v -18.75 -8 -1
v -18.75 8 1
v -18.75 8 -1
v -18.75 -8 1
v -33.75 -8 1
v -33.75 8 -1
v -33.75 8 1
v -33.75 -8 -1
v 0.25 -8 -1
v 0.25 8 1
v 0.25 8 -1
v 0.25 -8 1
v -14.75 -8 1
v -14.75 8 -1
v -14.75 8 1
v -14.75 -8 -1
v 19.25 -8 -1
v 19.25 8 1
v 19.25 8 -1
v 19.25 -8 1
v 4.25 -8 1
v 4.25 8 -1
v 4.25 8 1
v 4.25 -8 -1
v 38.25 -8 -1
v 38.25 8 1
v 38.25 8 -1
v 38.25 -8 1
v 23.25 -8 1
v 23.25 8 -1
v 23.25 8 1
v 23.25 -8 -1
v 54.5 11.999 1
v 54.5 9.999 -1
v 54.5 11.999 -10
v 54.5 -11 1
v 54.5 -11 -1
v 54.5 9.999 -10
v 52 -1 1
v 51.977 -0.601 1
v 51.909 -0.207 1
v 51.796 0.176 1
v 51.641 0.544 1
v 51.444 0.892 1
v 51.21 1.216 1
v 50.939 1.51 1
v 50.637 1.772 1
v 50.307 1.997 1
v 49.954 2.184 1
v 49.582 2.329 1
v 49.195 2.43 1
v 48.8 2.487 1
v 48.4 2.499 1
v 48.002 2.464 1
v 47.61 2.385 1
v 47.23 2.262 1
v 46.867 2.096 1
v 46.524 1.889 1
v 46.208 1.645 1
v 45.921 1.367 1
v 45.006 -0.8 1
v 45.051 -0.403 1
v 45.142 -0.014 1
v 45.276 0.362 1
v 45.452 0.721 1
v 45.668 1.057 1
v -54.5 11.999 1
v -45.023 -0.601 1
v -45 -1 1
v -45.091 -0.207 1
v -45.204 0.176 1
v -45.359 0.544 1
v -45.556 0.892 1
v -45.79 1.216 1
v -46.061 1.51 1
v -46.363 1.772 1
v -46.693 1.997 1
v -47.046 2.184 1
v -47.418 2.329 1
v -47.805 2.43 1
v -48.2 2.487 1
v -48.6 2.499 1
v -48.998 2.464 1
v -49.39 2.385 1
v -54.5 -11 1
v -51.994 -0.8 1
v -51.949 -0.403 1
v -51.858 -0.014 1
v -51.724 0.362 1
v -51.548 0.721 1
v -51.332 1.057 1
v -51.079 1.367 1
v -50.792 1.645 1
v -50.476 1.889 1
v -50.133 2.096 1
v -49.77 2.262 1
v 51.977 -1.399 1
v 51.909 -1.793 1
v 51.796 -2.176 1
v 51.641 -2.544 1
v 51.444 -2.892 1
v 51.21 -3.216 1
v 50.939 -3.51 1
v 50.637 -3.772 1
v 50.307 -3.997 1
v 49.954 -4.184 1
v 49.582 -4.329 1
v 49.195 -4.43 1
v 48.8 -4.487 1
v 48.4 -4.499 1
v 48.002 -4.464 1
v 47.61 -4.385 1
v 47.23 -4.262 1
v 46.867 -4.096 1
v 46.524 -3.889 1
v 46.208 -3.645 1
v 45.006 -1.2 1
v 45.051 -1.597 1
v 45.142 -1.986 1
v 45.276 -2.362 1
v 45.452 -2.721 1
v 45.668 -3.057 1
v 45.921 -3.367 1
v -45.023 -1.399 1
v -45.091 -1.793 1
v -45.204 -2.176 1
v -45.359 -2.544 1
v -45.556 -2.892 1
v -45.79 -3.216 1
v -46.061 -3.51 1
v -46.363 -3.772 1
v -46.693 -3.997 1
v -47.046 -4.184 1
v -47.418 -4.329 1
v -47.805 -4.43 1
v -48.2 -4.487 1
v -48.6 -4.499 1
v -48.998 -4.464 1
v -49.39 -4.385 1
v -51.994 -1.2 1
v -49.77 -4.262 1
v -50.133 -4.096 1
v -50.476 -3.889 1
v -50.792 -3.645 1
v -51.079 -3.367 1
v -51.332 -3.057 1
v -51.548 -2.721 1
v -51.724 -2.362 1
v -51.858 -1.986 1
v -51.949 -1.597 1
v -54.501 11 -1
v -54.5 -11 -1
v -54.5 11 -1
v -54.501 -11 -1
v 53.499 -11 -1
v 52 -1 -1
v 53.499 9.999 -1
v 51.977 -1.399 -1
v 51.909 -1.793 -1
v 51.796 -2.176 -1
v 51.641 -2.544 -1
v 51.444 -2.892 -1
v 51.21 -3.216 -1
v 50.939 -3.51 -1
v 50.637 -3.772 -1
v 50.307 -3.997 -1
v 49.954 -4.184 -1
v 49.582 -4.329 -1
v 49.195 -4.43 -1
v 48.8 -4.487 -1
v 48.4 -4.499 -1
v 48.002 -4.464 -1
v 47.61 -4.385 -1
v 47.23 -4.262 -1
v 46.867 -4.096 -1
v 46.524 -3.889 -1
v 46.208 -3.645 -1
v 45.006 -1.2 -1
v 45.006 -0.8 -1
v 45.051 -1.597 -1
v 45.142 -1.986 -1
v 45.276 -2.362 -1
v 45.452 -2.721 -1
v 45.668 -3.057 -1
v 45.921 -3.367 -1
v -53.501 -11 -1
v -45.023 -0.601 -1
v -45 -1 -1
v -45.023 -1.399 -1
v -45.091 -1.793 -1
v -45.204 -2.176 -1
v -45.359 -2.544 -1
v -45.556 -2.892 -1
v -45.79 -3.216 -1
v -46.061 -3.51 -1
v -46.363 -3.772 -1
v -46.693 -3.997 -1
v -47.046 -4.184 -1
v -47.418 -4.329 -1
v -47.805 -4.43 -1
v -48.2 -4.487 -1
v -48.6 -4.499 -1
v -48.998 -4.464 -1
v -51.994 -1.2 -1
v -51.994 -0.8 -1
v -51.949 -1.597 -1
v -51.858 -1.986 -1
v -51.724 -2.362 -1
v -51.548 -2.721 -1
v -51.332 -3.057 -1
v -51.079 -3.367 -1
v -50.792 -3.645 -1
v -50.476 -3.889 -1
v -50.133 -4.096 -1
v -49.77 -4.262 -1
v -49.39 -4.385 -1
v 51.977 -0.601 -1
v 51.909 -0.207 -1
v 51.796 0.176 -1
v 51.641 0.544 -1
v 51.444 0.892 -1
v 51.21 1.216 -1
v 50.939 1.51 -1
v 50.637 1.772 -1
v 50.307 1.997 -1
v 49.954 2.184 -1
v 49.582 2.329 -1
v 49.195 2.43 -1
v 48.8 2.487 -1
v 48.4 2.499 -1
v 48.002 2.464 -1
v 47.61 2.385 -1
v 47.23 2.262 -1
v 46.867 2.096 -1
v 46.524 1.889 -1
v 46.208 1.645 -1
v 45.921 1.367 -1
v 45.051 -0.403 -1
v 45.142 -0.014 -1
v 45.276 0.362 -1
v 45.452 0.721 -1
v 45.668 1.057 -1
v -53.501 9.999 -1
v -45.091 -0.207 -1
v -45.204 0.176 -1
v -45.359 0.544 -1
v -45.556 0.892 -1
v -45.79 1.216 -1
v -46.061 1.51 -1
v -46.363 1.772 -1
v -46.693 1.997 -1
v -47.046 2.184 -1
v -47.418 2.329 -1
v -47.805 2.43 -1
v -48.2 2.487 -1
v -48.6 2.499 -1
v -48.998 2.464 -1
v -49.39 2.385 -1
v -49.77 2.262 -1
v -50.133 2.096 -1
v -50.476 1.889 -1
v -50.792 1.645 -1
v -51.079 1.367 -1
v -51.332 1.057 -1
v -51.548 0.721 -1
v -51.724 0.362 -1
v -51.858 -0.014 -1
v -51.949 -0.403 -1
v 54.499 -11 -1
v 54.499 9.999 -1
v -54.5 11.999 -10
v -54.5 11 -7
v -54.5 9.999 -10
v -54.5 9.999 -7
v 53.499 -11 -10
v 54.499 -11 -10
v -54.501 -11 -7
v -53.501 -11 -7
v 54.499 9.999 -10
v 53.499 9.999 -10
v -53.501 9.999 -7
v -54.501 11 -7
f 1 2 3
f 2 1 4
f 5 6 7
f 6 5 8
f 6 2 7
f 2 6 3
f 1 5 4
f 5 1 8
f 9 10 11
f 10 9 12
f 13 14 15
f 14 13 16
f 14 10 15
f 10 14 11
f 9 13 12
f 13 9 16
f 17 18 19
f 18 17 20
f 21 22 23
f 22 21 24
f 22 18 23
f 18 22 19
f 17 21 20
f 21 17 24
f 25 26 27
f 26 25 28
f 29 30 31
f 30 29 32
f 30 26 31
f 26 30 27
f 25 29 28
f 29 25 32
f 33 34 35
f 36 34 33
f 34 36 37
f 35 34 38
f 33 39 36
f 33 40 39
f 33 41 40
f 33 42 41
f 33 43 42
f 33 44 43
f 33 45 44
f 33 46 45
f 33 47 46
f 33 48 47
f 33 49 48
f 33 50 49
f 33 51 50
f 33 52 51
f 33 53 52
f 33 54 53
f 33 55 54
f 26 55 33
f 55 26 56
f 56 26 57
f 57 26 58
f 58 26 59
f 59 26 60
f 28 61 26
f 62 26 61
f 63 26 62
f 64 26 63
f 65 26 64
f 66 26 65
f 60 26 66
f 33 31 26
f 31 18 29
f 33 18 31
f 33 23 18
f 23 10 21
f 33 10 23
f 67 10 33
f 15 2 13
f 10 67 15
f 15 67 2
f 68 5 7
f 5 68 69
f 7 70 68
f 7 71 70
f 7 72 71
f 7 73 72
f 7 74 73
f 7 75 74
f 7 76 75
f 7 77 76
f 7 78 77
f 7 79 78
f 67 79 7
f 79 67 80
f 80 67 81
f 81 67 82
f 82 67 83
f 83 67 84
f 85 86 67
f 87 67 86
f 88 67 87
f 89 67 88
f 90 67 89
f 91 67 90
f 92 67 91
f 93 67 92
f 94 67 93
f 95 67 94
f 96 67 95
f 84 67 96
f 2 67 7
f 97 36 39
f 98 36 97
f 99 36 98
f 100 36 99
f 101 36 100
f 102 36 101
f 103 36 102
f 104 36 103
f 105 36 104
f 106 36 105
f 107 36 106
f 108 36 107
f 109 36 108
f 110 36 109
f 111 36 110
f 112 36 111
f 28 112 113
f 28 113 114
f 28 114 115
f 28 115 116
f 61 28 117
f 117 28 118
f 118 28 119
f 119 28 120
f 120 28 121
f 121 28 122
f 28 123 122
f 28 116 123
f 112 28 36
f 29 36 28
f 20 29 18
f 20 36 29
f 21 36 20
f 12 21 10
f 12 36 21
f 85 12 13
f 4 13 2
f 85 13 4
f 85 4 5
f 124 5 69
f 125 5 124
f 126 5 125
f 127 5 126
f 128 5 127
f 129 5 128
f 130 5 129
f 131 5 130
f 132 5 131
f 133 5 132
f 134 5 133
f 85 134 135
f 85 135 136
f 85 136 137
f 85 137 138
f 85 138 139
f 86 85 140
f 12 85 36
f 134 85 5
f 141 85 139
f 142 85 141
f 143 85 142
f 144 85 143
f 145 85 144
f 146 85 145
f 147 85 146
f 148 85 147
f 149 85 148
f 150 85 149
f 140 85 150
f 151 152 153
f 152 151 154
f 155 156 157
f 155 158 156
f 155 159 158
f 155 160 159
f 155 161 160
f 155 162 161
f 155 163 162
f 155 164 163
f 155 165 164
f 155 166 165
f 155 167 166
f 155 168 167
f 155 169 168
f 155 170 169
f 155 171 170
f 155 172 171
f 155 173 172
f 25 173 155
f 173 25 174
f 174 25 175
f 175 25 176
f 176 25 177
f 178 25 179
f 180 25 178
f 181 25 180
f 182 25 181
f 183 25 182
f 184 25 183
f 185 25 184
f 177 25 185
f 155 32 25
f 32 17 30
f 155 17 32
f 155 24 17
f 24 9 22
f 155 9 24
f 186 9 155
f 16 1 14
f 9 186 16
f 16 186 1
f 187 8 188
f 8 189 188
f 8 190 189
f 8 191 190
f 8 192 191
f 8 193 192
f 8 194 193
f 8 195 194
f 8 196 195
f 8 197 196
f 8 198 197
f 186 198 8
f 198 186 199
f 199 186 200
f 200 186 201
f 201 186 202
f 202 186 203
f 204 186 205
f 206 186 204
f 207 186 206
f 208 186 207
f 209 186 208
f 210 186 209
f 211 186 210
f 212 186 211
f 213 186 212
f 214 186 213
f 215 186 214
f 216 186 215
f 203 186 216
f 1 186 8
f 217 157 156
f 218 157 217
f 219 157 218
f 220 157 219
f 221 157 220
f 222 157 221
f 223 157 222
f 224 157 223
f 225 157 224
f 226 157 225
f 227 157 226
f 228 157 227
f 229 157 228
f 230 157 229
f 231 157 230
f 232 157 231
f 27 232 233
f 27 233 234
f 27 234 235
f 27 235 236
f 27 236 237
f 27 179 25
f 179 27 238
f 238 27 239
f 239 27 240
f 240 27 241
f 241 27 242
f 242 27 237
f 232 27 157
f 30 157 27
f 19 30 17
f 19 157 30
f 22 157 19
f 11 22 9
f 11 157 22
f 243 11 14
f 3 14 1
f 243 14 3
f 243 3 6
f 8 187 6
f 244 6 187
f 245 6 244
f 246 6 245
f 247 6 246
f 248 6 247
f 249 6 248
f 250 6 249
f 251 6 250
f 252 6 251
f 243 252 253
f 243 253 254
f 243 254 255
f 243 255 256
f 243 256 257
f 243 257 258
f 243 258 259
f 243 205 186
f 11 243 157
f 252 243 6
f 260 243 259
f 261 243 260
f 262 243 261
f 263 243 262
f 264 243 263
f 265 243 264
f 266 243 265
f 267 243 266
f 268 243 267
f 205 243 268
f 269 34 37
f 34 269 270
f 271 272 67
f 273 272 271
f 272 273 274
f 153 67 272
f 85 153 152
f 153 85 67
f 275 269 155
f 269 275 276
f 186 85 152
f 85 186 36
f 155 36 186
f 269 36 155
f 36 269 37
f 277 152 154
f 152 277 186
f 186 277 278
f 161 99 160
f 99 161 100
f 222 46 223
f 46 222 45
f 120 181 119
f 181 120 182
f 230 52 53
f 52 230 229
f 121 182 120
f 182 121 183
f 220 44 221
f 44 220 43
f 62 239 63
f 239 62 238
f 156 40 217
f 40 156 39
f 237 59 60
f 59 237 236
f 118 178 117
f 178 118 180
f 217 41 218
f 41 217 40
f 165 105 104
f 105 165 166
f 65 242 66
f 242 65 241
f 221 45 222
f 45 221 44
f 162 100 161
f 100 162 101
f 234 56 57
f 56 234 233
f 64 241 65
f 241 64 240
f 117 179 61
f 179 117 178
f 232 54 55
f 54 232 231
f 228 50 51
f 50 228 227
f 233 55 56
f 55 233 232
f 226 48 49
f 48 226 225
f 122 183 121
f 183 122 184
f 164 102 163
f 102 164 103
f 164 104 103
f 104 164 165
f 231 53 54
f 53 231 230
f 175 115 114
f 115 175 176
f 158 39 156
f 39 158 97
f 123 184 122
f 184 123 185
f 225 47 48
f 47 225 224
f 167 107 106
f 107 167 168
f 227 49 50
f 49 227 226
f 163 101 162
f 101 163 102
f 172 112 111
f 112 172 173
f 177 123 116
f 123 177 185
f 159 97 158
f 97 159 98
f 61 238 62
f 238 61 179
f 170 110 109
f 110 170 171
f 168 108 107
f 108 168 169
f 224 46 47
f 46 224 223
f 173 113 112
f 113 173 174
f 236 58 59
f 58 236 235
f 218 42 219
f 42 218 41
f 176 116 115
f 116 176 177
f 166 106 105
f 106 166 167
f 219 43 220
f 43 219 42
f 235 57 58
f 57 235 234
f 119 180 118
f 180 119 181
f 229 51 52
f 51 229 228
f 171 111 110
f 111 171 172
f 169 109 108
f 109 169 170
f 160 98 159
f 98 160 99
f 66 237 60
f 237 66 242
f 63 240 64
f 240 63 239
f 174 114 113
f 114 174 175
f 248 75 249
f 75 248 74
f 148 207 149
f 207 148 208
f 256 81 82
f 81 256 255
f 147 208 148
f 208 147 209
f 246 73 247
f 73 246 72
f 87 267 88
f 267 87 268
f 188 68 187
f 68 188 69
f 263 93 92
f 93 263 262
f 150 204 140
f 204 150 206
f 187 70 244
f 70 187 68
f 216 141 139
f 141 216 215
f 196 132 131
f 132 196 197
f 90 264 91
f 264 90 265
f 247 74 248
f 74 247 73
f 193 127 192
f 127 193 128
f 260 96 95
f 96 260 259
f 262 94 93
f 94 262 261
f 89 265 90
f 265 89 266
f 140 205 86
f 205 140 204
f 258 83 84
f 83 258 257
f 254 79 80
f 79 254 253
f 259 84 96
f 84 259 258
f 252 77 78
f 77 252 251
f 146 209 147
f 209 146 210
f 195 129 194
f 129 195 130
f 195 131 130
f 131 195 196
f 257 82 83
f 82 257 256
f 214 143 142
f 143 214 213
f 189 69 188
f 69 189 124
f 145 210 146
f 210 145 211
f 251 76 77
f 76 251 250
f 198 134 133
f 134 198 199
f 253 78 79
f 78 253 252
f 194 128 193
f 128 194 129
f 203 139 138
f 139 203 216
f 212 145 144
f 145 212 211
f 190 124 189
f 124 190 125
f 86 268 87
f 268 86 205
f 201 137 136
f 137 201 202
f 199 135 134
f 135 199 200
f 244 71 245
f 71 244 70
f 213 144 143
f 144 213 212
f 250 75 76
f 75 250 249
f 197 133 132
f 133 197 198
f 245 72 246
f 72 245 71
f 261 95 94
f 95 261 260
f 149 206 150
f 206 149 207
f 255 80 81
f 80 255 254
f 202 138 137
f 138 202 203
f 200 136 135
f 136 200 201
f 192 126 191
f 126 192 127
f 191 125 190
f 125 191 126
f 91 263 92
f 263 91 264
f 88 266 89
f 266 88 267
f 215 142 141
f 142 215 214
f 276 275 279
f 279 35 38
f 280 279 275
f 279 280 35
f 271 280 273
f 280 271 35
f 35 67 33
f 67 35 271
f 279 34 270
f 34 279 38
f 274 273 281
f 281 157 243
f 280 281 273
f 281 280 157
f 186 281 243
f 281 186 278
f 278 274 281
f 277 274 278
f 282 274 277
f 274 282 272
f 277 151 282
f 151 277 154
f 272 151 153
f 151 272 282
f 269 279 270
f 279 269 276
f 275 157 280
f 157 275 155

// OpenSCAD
// file: lib/Shoulder.scad
function getShoulderCorners(dimensions) = [
    [0, 0, 0],
    [dimensions[0], 0, 0],
    [dimensions[0], 0, dimensions[2]],
    [0, dimensions[1], 0],
    [dimensions[0], dimensions[1], 0],
    [dimensions[0], dimensions[1], dimensions[2]]
];

module shoulder(dimensions) {
    corners = getShoulderCorners(dimensions);
    faces = [
        [1, 0, 2],
        [5, 3, 4],
        [4, 0, 1],
        [4, 3, 0],
        [2, 0, 3],
        [5, 2, 3],
        [2, 5, 1],
        [5, 4, 1]
    ];
    polyhedron(corners, faces);
}
// file: lib/ScarfJoint.scad
use <Shoulder.scad>;

module scarfAJoint(dimensions) {
    translate([dimensions[0], 0, dimensions[1]]) {
        rotate([0, 180, 0]) {
            shoulder(dimensions);
        }
    }
}

module scarfBJoint(dimensions) {
    shoulder(dimensions);
}
// file: lib/MortiseAndTenonJoint.scad
use <DowelJoint.scad>;

function getShoulderCorners(dimensions) = [
    [0, 0, 0],
    [dimensions[0], 0, 0],
    [dimensions[0], 0, dimensions[2]],
    [0, dimensions[1], 0],
    [dimensions[0], dimensions[1], 0],
    [dimensions[0], dimensions[1], dimensions[2]]
];

function getShoulderDimensions(dimensions, proportionsOfTenon, proportionOfShoulder) = [
    dimensions[0] * proportionsOfTenon[0] * proportionOfShoulder,
    dimensions[1] * ((1 - proportionsOfTenon[1])/2),
    dimensions[2] * proportionsOfTenon[2]
];

function getShoulderTranslations(dimensions, proportionsOfTenon, shoulderDimensions) = [
        [dimensions[0] - shoulderDimensions[0], 0, dimensions[2] * ((1-proportionsOfTenon[2])/2)],
        [dimensions[0] - shoulderDimensions[0], dimensions[1] - shoulderDimensions[1], dimensions[2] * ((1-proportionsOfTenon[2])/2)]
];

module mortise(dimensions, proportionsOfTenon) {
    difference() {
        cube(dimensions);
        tenon(dimensions, proportionsOfTenon);
    }    
}

module tenon(dimensions, proportionsOfTenon) {
    tenon = [
        for(i=[0: 2]) 
            dimensions[i] * proportionsOfTenon[i]
    ];
    translation = [
        dimensions[0] - tenon[0],
        (dimensions[1] - tenon[1]) / 2,
        (dimensions[2] - tenon[2]) / 2
    ];
    translate(translation) {
        cube(tenon);
    }
}

module pinnedMortise(dimensions, proportionsOfTenon, numberOfDowels, dowelSides, dowelRadius) {
    difference() {
        mortise(dimensions, proportionsOfTenon);
        pins(dimensions, numberOfDowels, dowelSides, dowelRadius);
    }
}

module pinnedTenon(dimensions, proportionsOfTenon, numberOfDowels, dowelSides, dowelRadius) {
    difference() {
        tenon(dimensions, proportionsOfTenon);
        pins(dimensions, numberOfDowels, dowelSides, dowelRadius);
    }
}

module pins(dimensions, numberOfDowels, dowelSides, dowelRadius) {
    translations = [
        for(i=[1: numberOfDowels])
            [
                dimensions[0]/2,
                dimensions[1],
                (dimensions[2]/(numberOfDowels+1) * i)
            ]
    ];
   
    for(t=translations) {
        translate(t) {
            rotate([90, 0, 0]) {
                dowelJoint(dowelSides, dowelRadius, dimensions[1]);
            }
        }
    }
}

module shoulder(dimensions) {
    corners = getShoulderCorners(dimensions);
    faces = [
        [1, 0, 2],
        [5, 3, 4],
        [4, 0, 1],
        [4, 3, 0],
        [2, 0, 3],
        [5, 2, 3],
        [2, 5, 1],
        [5, 4, 1]
    ];
    polyhedron(corners, faces);
}

module shoulderedMortise(dimensions, proportionsOfTenon, proportionOfShoulder) {
    shoulderDimensions = getShoulderDimensions(dimensions, proportionsOfTenon, proportionOfShoulder);
    translations = getShoulderTranslations(dimensions, proportionsOfTenon, shoulderDimensions);
    
    difference() {
        mortise(dimensions, proportionsOfTenon);
        for(t=translations) {
            translate(t) {
                shoulder(shoulderDimensions);
            }
        }
    }
}

module shoulderedTenon(dimensions, proportionsOfTenon, proportionOfShoulder) {
    shoulderDimensions = getShoulderDimensions(dimensions, proportionsOfTenon, proportionOfShoulder);
    translations = getShoulderTranslations(dimensions, proportionsOfTenon, shoulderDimensions);
    
    union() {
        tenon(dimensions, proportionsOfTenon);
        for(t=translations) {
            translate(t) {
                shoulder(shoulderDimensions);
            }
        }
    }
}
// file: lib/FingerJoint.scad
module createFingerJoints(dimensions, fingerCount, startingIndex, endingIndex) {
    x = dimensions[0] / (fingerCount*2);
    y = dimensions[1];
    z = dimensions[2];
    
    for(i=[startingIndex: 2: endingIndex]) {
        translate([i * x, 0, 0]) {
            cube([x, y, z]);
        }
    }
}

module fingerJointA(dimensions, fingerCount) {
    createFingerJoints(dimensions, fingerCount, 0, (fingerCount - 1) * 2);
}

module fingerJointB(dimensions, fingerCount) {
    createFingerJoints(dimensions, fingerCount, 1, (fingerCount) * 2);
}
// file: lib/DowelJoint.scad
function getCorners(sides, radius) = [
    for(i=[0: sides-1]) 
    [
        radius * sin(i/sides*360),
        radius * cos(i/sides*360)
    ]
];
module dowel(sides, radius, length) {
    linear_extrude(height = length) {
        polygon(getCorners(sides, radius));
    }
}
// file: lib/DovetailJoint.scad
function getDovetailCorners(dimensions) = [
    [0, 0],
    [getDovetailLargeWidth(dimensions[0]), 0],
    [dimensions[0], dimensions[1]],
    [dimensions[0]/2, dimensions[1]]
];
function getDovetailTranslations(numberOfDovetails, largeWidth) = [
    for(i = [0: numberOfDovetails-1])
        [getXSpacing(largeWidth, i), 0, 0]
];
function getDovetailLargeWidth(width) = width * 1.25;
function getDovetailBaseWidth(width) = width * 0.8;
function getXSpacing(largeWidth, index) = largeWidth/2 + (index * largeWidth * 2);

module dovetail(dimensions) {
    corners = getDovetailCorners(dimensions);
    
    linear_extrude(height = dimensions[2]) {
        polygon(corners);
    }
}

module dovetailAJoint(dimensions, numberOfDovetails) {
    width = dimensions[0];
    length = dimensions[1];
    height = dimensions[2];
    
    dovetailLargeWidth = width/(numberOfDovetails*2);
    dovetailBaseWidth = getDovetailBaseWidth(dovetailLargeWidth);
    
    for(t=getDovetailTranslations(numberOfDovetails, dovetailLargeWidth)) {
        translate(t) {
            dovetail([dovetailBaseWidth, length, height]);
        }
    }
}

module dovetailBJoint(dimensions, numberOfDovetails) {
    difference() {
        cube(dimensions);
        dovetailAJoint(dimensions, numberOfDovetails);
    }
}
// file: lib/BridleJoint.scad
module getMiddlePart(dimensions) {
    x = dimensions[0];
    y = dimensions[1];
    z = dimensions[2];
    translate([0, y/3, 0]) {
        cube([x, y/3, z]);
    }
}
module bridleJointFemale(dimensions) {
    difference() {
        cube(dimensions);
        getMiddlePart(dimensions);
    }
}

module bridleJointMale(dimensions) {
    getMiddlePart(dimensions);
}
// file: lib/JointSCAD.scad
use <BridleJoint.scad>;
use <DovetailJoint.scad>;
use <DowelJoint.scad>;
use <FingerJoint.scad>;
use <MortiseAndTenonJoint.scad>;
use <ScarfJoint.scad>;
use <Shoulder.scad>;
// main file
// SPDX-License-Identifier: MIT

use <lib/threads.scad>
include <lib/JointSCAD.scad>

$fa = 1;
$fs = 0.4;

// keyboard tray
kb_length = 109;
kb_width = 22;
kb_height = 2;

keyboard_cover_top(4, 19) key_holes();
translate([0, kb_width / 2 - 0.001, -4.5])
  keyboard_cover_front();
translate([-kb_length / 2  + 0.5 - 0.001, 0, -4])
    keyboard_cover_side(height=6);
translate([kb_length / 2  - 0.5 - 0.001, 0, -4.5])
  keyboard_cover_side(height=11);

module keyboard_cover_top(num, space) {
  difference() {
    cube([kb_length, kb_width, kb_height], center=true);
		for (i = [0 : num - 1])
			translate([-kb_length / 2 / 2 + 1 + space*i, 0, 0])
				children(0);
    translate([kb_length / 2 - 6,  kb_width / 2  - 12, 1])
  	 cylinder(r=3.5, h=4, center=true);
    translate([-(kb_length / 2 - 6),  kb_width / 2  - 12, 1])
  	 cylinder(r=3.5, h=4, center=true);
	}
}

module key_holes(){
  cube([15, 16, 5], center=true);
}

module keyboard_cover_front() {
  cube([kb_length, kb_height, 11], center=true);
}

module keyboard_cover_side(height) {
    cube([kb_height - 1, kb_width, height], center=true);
}
